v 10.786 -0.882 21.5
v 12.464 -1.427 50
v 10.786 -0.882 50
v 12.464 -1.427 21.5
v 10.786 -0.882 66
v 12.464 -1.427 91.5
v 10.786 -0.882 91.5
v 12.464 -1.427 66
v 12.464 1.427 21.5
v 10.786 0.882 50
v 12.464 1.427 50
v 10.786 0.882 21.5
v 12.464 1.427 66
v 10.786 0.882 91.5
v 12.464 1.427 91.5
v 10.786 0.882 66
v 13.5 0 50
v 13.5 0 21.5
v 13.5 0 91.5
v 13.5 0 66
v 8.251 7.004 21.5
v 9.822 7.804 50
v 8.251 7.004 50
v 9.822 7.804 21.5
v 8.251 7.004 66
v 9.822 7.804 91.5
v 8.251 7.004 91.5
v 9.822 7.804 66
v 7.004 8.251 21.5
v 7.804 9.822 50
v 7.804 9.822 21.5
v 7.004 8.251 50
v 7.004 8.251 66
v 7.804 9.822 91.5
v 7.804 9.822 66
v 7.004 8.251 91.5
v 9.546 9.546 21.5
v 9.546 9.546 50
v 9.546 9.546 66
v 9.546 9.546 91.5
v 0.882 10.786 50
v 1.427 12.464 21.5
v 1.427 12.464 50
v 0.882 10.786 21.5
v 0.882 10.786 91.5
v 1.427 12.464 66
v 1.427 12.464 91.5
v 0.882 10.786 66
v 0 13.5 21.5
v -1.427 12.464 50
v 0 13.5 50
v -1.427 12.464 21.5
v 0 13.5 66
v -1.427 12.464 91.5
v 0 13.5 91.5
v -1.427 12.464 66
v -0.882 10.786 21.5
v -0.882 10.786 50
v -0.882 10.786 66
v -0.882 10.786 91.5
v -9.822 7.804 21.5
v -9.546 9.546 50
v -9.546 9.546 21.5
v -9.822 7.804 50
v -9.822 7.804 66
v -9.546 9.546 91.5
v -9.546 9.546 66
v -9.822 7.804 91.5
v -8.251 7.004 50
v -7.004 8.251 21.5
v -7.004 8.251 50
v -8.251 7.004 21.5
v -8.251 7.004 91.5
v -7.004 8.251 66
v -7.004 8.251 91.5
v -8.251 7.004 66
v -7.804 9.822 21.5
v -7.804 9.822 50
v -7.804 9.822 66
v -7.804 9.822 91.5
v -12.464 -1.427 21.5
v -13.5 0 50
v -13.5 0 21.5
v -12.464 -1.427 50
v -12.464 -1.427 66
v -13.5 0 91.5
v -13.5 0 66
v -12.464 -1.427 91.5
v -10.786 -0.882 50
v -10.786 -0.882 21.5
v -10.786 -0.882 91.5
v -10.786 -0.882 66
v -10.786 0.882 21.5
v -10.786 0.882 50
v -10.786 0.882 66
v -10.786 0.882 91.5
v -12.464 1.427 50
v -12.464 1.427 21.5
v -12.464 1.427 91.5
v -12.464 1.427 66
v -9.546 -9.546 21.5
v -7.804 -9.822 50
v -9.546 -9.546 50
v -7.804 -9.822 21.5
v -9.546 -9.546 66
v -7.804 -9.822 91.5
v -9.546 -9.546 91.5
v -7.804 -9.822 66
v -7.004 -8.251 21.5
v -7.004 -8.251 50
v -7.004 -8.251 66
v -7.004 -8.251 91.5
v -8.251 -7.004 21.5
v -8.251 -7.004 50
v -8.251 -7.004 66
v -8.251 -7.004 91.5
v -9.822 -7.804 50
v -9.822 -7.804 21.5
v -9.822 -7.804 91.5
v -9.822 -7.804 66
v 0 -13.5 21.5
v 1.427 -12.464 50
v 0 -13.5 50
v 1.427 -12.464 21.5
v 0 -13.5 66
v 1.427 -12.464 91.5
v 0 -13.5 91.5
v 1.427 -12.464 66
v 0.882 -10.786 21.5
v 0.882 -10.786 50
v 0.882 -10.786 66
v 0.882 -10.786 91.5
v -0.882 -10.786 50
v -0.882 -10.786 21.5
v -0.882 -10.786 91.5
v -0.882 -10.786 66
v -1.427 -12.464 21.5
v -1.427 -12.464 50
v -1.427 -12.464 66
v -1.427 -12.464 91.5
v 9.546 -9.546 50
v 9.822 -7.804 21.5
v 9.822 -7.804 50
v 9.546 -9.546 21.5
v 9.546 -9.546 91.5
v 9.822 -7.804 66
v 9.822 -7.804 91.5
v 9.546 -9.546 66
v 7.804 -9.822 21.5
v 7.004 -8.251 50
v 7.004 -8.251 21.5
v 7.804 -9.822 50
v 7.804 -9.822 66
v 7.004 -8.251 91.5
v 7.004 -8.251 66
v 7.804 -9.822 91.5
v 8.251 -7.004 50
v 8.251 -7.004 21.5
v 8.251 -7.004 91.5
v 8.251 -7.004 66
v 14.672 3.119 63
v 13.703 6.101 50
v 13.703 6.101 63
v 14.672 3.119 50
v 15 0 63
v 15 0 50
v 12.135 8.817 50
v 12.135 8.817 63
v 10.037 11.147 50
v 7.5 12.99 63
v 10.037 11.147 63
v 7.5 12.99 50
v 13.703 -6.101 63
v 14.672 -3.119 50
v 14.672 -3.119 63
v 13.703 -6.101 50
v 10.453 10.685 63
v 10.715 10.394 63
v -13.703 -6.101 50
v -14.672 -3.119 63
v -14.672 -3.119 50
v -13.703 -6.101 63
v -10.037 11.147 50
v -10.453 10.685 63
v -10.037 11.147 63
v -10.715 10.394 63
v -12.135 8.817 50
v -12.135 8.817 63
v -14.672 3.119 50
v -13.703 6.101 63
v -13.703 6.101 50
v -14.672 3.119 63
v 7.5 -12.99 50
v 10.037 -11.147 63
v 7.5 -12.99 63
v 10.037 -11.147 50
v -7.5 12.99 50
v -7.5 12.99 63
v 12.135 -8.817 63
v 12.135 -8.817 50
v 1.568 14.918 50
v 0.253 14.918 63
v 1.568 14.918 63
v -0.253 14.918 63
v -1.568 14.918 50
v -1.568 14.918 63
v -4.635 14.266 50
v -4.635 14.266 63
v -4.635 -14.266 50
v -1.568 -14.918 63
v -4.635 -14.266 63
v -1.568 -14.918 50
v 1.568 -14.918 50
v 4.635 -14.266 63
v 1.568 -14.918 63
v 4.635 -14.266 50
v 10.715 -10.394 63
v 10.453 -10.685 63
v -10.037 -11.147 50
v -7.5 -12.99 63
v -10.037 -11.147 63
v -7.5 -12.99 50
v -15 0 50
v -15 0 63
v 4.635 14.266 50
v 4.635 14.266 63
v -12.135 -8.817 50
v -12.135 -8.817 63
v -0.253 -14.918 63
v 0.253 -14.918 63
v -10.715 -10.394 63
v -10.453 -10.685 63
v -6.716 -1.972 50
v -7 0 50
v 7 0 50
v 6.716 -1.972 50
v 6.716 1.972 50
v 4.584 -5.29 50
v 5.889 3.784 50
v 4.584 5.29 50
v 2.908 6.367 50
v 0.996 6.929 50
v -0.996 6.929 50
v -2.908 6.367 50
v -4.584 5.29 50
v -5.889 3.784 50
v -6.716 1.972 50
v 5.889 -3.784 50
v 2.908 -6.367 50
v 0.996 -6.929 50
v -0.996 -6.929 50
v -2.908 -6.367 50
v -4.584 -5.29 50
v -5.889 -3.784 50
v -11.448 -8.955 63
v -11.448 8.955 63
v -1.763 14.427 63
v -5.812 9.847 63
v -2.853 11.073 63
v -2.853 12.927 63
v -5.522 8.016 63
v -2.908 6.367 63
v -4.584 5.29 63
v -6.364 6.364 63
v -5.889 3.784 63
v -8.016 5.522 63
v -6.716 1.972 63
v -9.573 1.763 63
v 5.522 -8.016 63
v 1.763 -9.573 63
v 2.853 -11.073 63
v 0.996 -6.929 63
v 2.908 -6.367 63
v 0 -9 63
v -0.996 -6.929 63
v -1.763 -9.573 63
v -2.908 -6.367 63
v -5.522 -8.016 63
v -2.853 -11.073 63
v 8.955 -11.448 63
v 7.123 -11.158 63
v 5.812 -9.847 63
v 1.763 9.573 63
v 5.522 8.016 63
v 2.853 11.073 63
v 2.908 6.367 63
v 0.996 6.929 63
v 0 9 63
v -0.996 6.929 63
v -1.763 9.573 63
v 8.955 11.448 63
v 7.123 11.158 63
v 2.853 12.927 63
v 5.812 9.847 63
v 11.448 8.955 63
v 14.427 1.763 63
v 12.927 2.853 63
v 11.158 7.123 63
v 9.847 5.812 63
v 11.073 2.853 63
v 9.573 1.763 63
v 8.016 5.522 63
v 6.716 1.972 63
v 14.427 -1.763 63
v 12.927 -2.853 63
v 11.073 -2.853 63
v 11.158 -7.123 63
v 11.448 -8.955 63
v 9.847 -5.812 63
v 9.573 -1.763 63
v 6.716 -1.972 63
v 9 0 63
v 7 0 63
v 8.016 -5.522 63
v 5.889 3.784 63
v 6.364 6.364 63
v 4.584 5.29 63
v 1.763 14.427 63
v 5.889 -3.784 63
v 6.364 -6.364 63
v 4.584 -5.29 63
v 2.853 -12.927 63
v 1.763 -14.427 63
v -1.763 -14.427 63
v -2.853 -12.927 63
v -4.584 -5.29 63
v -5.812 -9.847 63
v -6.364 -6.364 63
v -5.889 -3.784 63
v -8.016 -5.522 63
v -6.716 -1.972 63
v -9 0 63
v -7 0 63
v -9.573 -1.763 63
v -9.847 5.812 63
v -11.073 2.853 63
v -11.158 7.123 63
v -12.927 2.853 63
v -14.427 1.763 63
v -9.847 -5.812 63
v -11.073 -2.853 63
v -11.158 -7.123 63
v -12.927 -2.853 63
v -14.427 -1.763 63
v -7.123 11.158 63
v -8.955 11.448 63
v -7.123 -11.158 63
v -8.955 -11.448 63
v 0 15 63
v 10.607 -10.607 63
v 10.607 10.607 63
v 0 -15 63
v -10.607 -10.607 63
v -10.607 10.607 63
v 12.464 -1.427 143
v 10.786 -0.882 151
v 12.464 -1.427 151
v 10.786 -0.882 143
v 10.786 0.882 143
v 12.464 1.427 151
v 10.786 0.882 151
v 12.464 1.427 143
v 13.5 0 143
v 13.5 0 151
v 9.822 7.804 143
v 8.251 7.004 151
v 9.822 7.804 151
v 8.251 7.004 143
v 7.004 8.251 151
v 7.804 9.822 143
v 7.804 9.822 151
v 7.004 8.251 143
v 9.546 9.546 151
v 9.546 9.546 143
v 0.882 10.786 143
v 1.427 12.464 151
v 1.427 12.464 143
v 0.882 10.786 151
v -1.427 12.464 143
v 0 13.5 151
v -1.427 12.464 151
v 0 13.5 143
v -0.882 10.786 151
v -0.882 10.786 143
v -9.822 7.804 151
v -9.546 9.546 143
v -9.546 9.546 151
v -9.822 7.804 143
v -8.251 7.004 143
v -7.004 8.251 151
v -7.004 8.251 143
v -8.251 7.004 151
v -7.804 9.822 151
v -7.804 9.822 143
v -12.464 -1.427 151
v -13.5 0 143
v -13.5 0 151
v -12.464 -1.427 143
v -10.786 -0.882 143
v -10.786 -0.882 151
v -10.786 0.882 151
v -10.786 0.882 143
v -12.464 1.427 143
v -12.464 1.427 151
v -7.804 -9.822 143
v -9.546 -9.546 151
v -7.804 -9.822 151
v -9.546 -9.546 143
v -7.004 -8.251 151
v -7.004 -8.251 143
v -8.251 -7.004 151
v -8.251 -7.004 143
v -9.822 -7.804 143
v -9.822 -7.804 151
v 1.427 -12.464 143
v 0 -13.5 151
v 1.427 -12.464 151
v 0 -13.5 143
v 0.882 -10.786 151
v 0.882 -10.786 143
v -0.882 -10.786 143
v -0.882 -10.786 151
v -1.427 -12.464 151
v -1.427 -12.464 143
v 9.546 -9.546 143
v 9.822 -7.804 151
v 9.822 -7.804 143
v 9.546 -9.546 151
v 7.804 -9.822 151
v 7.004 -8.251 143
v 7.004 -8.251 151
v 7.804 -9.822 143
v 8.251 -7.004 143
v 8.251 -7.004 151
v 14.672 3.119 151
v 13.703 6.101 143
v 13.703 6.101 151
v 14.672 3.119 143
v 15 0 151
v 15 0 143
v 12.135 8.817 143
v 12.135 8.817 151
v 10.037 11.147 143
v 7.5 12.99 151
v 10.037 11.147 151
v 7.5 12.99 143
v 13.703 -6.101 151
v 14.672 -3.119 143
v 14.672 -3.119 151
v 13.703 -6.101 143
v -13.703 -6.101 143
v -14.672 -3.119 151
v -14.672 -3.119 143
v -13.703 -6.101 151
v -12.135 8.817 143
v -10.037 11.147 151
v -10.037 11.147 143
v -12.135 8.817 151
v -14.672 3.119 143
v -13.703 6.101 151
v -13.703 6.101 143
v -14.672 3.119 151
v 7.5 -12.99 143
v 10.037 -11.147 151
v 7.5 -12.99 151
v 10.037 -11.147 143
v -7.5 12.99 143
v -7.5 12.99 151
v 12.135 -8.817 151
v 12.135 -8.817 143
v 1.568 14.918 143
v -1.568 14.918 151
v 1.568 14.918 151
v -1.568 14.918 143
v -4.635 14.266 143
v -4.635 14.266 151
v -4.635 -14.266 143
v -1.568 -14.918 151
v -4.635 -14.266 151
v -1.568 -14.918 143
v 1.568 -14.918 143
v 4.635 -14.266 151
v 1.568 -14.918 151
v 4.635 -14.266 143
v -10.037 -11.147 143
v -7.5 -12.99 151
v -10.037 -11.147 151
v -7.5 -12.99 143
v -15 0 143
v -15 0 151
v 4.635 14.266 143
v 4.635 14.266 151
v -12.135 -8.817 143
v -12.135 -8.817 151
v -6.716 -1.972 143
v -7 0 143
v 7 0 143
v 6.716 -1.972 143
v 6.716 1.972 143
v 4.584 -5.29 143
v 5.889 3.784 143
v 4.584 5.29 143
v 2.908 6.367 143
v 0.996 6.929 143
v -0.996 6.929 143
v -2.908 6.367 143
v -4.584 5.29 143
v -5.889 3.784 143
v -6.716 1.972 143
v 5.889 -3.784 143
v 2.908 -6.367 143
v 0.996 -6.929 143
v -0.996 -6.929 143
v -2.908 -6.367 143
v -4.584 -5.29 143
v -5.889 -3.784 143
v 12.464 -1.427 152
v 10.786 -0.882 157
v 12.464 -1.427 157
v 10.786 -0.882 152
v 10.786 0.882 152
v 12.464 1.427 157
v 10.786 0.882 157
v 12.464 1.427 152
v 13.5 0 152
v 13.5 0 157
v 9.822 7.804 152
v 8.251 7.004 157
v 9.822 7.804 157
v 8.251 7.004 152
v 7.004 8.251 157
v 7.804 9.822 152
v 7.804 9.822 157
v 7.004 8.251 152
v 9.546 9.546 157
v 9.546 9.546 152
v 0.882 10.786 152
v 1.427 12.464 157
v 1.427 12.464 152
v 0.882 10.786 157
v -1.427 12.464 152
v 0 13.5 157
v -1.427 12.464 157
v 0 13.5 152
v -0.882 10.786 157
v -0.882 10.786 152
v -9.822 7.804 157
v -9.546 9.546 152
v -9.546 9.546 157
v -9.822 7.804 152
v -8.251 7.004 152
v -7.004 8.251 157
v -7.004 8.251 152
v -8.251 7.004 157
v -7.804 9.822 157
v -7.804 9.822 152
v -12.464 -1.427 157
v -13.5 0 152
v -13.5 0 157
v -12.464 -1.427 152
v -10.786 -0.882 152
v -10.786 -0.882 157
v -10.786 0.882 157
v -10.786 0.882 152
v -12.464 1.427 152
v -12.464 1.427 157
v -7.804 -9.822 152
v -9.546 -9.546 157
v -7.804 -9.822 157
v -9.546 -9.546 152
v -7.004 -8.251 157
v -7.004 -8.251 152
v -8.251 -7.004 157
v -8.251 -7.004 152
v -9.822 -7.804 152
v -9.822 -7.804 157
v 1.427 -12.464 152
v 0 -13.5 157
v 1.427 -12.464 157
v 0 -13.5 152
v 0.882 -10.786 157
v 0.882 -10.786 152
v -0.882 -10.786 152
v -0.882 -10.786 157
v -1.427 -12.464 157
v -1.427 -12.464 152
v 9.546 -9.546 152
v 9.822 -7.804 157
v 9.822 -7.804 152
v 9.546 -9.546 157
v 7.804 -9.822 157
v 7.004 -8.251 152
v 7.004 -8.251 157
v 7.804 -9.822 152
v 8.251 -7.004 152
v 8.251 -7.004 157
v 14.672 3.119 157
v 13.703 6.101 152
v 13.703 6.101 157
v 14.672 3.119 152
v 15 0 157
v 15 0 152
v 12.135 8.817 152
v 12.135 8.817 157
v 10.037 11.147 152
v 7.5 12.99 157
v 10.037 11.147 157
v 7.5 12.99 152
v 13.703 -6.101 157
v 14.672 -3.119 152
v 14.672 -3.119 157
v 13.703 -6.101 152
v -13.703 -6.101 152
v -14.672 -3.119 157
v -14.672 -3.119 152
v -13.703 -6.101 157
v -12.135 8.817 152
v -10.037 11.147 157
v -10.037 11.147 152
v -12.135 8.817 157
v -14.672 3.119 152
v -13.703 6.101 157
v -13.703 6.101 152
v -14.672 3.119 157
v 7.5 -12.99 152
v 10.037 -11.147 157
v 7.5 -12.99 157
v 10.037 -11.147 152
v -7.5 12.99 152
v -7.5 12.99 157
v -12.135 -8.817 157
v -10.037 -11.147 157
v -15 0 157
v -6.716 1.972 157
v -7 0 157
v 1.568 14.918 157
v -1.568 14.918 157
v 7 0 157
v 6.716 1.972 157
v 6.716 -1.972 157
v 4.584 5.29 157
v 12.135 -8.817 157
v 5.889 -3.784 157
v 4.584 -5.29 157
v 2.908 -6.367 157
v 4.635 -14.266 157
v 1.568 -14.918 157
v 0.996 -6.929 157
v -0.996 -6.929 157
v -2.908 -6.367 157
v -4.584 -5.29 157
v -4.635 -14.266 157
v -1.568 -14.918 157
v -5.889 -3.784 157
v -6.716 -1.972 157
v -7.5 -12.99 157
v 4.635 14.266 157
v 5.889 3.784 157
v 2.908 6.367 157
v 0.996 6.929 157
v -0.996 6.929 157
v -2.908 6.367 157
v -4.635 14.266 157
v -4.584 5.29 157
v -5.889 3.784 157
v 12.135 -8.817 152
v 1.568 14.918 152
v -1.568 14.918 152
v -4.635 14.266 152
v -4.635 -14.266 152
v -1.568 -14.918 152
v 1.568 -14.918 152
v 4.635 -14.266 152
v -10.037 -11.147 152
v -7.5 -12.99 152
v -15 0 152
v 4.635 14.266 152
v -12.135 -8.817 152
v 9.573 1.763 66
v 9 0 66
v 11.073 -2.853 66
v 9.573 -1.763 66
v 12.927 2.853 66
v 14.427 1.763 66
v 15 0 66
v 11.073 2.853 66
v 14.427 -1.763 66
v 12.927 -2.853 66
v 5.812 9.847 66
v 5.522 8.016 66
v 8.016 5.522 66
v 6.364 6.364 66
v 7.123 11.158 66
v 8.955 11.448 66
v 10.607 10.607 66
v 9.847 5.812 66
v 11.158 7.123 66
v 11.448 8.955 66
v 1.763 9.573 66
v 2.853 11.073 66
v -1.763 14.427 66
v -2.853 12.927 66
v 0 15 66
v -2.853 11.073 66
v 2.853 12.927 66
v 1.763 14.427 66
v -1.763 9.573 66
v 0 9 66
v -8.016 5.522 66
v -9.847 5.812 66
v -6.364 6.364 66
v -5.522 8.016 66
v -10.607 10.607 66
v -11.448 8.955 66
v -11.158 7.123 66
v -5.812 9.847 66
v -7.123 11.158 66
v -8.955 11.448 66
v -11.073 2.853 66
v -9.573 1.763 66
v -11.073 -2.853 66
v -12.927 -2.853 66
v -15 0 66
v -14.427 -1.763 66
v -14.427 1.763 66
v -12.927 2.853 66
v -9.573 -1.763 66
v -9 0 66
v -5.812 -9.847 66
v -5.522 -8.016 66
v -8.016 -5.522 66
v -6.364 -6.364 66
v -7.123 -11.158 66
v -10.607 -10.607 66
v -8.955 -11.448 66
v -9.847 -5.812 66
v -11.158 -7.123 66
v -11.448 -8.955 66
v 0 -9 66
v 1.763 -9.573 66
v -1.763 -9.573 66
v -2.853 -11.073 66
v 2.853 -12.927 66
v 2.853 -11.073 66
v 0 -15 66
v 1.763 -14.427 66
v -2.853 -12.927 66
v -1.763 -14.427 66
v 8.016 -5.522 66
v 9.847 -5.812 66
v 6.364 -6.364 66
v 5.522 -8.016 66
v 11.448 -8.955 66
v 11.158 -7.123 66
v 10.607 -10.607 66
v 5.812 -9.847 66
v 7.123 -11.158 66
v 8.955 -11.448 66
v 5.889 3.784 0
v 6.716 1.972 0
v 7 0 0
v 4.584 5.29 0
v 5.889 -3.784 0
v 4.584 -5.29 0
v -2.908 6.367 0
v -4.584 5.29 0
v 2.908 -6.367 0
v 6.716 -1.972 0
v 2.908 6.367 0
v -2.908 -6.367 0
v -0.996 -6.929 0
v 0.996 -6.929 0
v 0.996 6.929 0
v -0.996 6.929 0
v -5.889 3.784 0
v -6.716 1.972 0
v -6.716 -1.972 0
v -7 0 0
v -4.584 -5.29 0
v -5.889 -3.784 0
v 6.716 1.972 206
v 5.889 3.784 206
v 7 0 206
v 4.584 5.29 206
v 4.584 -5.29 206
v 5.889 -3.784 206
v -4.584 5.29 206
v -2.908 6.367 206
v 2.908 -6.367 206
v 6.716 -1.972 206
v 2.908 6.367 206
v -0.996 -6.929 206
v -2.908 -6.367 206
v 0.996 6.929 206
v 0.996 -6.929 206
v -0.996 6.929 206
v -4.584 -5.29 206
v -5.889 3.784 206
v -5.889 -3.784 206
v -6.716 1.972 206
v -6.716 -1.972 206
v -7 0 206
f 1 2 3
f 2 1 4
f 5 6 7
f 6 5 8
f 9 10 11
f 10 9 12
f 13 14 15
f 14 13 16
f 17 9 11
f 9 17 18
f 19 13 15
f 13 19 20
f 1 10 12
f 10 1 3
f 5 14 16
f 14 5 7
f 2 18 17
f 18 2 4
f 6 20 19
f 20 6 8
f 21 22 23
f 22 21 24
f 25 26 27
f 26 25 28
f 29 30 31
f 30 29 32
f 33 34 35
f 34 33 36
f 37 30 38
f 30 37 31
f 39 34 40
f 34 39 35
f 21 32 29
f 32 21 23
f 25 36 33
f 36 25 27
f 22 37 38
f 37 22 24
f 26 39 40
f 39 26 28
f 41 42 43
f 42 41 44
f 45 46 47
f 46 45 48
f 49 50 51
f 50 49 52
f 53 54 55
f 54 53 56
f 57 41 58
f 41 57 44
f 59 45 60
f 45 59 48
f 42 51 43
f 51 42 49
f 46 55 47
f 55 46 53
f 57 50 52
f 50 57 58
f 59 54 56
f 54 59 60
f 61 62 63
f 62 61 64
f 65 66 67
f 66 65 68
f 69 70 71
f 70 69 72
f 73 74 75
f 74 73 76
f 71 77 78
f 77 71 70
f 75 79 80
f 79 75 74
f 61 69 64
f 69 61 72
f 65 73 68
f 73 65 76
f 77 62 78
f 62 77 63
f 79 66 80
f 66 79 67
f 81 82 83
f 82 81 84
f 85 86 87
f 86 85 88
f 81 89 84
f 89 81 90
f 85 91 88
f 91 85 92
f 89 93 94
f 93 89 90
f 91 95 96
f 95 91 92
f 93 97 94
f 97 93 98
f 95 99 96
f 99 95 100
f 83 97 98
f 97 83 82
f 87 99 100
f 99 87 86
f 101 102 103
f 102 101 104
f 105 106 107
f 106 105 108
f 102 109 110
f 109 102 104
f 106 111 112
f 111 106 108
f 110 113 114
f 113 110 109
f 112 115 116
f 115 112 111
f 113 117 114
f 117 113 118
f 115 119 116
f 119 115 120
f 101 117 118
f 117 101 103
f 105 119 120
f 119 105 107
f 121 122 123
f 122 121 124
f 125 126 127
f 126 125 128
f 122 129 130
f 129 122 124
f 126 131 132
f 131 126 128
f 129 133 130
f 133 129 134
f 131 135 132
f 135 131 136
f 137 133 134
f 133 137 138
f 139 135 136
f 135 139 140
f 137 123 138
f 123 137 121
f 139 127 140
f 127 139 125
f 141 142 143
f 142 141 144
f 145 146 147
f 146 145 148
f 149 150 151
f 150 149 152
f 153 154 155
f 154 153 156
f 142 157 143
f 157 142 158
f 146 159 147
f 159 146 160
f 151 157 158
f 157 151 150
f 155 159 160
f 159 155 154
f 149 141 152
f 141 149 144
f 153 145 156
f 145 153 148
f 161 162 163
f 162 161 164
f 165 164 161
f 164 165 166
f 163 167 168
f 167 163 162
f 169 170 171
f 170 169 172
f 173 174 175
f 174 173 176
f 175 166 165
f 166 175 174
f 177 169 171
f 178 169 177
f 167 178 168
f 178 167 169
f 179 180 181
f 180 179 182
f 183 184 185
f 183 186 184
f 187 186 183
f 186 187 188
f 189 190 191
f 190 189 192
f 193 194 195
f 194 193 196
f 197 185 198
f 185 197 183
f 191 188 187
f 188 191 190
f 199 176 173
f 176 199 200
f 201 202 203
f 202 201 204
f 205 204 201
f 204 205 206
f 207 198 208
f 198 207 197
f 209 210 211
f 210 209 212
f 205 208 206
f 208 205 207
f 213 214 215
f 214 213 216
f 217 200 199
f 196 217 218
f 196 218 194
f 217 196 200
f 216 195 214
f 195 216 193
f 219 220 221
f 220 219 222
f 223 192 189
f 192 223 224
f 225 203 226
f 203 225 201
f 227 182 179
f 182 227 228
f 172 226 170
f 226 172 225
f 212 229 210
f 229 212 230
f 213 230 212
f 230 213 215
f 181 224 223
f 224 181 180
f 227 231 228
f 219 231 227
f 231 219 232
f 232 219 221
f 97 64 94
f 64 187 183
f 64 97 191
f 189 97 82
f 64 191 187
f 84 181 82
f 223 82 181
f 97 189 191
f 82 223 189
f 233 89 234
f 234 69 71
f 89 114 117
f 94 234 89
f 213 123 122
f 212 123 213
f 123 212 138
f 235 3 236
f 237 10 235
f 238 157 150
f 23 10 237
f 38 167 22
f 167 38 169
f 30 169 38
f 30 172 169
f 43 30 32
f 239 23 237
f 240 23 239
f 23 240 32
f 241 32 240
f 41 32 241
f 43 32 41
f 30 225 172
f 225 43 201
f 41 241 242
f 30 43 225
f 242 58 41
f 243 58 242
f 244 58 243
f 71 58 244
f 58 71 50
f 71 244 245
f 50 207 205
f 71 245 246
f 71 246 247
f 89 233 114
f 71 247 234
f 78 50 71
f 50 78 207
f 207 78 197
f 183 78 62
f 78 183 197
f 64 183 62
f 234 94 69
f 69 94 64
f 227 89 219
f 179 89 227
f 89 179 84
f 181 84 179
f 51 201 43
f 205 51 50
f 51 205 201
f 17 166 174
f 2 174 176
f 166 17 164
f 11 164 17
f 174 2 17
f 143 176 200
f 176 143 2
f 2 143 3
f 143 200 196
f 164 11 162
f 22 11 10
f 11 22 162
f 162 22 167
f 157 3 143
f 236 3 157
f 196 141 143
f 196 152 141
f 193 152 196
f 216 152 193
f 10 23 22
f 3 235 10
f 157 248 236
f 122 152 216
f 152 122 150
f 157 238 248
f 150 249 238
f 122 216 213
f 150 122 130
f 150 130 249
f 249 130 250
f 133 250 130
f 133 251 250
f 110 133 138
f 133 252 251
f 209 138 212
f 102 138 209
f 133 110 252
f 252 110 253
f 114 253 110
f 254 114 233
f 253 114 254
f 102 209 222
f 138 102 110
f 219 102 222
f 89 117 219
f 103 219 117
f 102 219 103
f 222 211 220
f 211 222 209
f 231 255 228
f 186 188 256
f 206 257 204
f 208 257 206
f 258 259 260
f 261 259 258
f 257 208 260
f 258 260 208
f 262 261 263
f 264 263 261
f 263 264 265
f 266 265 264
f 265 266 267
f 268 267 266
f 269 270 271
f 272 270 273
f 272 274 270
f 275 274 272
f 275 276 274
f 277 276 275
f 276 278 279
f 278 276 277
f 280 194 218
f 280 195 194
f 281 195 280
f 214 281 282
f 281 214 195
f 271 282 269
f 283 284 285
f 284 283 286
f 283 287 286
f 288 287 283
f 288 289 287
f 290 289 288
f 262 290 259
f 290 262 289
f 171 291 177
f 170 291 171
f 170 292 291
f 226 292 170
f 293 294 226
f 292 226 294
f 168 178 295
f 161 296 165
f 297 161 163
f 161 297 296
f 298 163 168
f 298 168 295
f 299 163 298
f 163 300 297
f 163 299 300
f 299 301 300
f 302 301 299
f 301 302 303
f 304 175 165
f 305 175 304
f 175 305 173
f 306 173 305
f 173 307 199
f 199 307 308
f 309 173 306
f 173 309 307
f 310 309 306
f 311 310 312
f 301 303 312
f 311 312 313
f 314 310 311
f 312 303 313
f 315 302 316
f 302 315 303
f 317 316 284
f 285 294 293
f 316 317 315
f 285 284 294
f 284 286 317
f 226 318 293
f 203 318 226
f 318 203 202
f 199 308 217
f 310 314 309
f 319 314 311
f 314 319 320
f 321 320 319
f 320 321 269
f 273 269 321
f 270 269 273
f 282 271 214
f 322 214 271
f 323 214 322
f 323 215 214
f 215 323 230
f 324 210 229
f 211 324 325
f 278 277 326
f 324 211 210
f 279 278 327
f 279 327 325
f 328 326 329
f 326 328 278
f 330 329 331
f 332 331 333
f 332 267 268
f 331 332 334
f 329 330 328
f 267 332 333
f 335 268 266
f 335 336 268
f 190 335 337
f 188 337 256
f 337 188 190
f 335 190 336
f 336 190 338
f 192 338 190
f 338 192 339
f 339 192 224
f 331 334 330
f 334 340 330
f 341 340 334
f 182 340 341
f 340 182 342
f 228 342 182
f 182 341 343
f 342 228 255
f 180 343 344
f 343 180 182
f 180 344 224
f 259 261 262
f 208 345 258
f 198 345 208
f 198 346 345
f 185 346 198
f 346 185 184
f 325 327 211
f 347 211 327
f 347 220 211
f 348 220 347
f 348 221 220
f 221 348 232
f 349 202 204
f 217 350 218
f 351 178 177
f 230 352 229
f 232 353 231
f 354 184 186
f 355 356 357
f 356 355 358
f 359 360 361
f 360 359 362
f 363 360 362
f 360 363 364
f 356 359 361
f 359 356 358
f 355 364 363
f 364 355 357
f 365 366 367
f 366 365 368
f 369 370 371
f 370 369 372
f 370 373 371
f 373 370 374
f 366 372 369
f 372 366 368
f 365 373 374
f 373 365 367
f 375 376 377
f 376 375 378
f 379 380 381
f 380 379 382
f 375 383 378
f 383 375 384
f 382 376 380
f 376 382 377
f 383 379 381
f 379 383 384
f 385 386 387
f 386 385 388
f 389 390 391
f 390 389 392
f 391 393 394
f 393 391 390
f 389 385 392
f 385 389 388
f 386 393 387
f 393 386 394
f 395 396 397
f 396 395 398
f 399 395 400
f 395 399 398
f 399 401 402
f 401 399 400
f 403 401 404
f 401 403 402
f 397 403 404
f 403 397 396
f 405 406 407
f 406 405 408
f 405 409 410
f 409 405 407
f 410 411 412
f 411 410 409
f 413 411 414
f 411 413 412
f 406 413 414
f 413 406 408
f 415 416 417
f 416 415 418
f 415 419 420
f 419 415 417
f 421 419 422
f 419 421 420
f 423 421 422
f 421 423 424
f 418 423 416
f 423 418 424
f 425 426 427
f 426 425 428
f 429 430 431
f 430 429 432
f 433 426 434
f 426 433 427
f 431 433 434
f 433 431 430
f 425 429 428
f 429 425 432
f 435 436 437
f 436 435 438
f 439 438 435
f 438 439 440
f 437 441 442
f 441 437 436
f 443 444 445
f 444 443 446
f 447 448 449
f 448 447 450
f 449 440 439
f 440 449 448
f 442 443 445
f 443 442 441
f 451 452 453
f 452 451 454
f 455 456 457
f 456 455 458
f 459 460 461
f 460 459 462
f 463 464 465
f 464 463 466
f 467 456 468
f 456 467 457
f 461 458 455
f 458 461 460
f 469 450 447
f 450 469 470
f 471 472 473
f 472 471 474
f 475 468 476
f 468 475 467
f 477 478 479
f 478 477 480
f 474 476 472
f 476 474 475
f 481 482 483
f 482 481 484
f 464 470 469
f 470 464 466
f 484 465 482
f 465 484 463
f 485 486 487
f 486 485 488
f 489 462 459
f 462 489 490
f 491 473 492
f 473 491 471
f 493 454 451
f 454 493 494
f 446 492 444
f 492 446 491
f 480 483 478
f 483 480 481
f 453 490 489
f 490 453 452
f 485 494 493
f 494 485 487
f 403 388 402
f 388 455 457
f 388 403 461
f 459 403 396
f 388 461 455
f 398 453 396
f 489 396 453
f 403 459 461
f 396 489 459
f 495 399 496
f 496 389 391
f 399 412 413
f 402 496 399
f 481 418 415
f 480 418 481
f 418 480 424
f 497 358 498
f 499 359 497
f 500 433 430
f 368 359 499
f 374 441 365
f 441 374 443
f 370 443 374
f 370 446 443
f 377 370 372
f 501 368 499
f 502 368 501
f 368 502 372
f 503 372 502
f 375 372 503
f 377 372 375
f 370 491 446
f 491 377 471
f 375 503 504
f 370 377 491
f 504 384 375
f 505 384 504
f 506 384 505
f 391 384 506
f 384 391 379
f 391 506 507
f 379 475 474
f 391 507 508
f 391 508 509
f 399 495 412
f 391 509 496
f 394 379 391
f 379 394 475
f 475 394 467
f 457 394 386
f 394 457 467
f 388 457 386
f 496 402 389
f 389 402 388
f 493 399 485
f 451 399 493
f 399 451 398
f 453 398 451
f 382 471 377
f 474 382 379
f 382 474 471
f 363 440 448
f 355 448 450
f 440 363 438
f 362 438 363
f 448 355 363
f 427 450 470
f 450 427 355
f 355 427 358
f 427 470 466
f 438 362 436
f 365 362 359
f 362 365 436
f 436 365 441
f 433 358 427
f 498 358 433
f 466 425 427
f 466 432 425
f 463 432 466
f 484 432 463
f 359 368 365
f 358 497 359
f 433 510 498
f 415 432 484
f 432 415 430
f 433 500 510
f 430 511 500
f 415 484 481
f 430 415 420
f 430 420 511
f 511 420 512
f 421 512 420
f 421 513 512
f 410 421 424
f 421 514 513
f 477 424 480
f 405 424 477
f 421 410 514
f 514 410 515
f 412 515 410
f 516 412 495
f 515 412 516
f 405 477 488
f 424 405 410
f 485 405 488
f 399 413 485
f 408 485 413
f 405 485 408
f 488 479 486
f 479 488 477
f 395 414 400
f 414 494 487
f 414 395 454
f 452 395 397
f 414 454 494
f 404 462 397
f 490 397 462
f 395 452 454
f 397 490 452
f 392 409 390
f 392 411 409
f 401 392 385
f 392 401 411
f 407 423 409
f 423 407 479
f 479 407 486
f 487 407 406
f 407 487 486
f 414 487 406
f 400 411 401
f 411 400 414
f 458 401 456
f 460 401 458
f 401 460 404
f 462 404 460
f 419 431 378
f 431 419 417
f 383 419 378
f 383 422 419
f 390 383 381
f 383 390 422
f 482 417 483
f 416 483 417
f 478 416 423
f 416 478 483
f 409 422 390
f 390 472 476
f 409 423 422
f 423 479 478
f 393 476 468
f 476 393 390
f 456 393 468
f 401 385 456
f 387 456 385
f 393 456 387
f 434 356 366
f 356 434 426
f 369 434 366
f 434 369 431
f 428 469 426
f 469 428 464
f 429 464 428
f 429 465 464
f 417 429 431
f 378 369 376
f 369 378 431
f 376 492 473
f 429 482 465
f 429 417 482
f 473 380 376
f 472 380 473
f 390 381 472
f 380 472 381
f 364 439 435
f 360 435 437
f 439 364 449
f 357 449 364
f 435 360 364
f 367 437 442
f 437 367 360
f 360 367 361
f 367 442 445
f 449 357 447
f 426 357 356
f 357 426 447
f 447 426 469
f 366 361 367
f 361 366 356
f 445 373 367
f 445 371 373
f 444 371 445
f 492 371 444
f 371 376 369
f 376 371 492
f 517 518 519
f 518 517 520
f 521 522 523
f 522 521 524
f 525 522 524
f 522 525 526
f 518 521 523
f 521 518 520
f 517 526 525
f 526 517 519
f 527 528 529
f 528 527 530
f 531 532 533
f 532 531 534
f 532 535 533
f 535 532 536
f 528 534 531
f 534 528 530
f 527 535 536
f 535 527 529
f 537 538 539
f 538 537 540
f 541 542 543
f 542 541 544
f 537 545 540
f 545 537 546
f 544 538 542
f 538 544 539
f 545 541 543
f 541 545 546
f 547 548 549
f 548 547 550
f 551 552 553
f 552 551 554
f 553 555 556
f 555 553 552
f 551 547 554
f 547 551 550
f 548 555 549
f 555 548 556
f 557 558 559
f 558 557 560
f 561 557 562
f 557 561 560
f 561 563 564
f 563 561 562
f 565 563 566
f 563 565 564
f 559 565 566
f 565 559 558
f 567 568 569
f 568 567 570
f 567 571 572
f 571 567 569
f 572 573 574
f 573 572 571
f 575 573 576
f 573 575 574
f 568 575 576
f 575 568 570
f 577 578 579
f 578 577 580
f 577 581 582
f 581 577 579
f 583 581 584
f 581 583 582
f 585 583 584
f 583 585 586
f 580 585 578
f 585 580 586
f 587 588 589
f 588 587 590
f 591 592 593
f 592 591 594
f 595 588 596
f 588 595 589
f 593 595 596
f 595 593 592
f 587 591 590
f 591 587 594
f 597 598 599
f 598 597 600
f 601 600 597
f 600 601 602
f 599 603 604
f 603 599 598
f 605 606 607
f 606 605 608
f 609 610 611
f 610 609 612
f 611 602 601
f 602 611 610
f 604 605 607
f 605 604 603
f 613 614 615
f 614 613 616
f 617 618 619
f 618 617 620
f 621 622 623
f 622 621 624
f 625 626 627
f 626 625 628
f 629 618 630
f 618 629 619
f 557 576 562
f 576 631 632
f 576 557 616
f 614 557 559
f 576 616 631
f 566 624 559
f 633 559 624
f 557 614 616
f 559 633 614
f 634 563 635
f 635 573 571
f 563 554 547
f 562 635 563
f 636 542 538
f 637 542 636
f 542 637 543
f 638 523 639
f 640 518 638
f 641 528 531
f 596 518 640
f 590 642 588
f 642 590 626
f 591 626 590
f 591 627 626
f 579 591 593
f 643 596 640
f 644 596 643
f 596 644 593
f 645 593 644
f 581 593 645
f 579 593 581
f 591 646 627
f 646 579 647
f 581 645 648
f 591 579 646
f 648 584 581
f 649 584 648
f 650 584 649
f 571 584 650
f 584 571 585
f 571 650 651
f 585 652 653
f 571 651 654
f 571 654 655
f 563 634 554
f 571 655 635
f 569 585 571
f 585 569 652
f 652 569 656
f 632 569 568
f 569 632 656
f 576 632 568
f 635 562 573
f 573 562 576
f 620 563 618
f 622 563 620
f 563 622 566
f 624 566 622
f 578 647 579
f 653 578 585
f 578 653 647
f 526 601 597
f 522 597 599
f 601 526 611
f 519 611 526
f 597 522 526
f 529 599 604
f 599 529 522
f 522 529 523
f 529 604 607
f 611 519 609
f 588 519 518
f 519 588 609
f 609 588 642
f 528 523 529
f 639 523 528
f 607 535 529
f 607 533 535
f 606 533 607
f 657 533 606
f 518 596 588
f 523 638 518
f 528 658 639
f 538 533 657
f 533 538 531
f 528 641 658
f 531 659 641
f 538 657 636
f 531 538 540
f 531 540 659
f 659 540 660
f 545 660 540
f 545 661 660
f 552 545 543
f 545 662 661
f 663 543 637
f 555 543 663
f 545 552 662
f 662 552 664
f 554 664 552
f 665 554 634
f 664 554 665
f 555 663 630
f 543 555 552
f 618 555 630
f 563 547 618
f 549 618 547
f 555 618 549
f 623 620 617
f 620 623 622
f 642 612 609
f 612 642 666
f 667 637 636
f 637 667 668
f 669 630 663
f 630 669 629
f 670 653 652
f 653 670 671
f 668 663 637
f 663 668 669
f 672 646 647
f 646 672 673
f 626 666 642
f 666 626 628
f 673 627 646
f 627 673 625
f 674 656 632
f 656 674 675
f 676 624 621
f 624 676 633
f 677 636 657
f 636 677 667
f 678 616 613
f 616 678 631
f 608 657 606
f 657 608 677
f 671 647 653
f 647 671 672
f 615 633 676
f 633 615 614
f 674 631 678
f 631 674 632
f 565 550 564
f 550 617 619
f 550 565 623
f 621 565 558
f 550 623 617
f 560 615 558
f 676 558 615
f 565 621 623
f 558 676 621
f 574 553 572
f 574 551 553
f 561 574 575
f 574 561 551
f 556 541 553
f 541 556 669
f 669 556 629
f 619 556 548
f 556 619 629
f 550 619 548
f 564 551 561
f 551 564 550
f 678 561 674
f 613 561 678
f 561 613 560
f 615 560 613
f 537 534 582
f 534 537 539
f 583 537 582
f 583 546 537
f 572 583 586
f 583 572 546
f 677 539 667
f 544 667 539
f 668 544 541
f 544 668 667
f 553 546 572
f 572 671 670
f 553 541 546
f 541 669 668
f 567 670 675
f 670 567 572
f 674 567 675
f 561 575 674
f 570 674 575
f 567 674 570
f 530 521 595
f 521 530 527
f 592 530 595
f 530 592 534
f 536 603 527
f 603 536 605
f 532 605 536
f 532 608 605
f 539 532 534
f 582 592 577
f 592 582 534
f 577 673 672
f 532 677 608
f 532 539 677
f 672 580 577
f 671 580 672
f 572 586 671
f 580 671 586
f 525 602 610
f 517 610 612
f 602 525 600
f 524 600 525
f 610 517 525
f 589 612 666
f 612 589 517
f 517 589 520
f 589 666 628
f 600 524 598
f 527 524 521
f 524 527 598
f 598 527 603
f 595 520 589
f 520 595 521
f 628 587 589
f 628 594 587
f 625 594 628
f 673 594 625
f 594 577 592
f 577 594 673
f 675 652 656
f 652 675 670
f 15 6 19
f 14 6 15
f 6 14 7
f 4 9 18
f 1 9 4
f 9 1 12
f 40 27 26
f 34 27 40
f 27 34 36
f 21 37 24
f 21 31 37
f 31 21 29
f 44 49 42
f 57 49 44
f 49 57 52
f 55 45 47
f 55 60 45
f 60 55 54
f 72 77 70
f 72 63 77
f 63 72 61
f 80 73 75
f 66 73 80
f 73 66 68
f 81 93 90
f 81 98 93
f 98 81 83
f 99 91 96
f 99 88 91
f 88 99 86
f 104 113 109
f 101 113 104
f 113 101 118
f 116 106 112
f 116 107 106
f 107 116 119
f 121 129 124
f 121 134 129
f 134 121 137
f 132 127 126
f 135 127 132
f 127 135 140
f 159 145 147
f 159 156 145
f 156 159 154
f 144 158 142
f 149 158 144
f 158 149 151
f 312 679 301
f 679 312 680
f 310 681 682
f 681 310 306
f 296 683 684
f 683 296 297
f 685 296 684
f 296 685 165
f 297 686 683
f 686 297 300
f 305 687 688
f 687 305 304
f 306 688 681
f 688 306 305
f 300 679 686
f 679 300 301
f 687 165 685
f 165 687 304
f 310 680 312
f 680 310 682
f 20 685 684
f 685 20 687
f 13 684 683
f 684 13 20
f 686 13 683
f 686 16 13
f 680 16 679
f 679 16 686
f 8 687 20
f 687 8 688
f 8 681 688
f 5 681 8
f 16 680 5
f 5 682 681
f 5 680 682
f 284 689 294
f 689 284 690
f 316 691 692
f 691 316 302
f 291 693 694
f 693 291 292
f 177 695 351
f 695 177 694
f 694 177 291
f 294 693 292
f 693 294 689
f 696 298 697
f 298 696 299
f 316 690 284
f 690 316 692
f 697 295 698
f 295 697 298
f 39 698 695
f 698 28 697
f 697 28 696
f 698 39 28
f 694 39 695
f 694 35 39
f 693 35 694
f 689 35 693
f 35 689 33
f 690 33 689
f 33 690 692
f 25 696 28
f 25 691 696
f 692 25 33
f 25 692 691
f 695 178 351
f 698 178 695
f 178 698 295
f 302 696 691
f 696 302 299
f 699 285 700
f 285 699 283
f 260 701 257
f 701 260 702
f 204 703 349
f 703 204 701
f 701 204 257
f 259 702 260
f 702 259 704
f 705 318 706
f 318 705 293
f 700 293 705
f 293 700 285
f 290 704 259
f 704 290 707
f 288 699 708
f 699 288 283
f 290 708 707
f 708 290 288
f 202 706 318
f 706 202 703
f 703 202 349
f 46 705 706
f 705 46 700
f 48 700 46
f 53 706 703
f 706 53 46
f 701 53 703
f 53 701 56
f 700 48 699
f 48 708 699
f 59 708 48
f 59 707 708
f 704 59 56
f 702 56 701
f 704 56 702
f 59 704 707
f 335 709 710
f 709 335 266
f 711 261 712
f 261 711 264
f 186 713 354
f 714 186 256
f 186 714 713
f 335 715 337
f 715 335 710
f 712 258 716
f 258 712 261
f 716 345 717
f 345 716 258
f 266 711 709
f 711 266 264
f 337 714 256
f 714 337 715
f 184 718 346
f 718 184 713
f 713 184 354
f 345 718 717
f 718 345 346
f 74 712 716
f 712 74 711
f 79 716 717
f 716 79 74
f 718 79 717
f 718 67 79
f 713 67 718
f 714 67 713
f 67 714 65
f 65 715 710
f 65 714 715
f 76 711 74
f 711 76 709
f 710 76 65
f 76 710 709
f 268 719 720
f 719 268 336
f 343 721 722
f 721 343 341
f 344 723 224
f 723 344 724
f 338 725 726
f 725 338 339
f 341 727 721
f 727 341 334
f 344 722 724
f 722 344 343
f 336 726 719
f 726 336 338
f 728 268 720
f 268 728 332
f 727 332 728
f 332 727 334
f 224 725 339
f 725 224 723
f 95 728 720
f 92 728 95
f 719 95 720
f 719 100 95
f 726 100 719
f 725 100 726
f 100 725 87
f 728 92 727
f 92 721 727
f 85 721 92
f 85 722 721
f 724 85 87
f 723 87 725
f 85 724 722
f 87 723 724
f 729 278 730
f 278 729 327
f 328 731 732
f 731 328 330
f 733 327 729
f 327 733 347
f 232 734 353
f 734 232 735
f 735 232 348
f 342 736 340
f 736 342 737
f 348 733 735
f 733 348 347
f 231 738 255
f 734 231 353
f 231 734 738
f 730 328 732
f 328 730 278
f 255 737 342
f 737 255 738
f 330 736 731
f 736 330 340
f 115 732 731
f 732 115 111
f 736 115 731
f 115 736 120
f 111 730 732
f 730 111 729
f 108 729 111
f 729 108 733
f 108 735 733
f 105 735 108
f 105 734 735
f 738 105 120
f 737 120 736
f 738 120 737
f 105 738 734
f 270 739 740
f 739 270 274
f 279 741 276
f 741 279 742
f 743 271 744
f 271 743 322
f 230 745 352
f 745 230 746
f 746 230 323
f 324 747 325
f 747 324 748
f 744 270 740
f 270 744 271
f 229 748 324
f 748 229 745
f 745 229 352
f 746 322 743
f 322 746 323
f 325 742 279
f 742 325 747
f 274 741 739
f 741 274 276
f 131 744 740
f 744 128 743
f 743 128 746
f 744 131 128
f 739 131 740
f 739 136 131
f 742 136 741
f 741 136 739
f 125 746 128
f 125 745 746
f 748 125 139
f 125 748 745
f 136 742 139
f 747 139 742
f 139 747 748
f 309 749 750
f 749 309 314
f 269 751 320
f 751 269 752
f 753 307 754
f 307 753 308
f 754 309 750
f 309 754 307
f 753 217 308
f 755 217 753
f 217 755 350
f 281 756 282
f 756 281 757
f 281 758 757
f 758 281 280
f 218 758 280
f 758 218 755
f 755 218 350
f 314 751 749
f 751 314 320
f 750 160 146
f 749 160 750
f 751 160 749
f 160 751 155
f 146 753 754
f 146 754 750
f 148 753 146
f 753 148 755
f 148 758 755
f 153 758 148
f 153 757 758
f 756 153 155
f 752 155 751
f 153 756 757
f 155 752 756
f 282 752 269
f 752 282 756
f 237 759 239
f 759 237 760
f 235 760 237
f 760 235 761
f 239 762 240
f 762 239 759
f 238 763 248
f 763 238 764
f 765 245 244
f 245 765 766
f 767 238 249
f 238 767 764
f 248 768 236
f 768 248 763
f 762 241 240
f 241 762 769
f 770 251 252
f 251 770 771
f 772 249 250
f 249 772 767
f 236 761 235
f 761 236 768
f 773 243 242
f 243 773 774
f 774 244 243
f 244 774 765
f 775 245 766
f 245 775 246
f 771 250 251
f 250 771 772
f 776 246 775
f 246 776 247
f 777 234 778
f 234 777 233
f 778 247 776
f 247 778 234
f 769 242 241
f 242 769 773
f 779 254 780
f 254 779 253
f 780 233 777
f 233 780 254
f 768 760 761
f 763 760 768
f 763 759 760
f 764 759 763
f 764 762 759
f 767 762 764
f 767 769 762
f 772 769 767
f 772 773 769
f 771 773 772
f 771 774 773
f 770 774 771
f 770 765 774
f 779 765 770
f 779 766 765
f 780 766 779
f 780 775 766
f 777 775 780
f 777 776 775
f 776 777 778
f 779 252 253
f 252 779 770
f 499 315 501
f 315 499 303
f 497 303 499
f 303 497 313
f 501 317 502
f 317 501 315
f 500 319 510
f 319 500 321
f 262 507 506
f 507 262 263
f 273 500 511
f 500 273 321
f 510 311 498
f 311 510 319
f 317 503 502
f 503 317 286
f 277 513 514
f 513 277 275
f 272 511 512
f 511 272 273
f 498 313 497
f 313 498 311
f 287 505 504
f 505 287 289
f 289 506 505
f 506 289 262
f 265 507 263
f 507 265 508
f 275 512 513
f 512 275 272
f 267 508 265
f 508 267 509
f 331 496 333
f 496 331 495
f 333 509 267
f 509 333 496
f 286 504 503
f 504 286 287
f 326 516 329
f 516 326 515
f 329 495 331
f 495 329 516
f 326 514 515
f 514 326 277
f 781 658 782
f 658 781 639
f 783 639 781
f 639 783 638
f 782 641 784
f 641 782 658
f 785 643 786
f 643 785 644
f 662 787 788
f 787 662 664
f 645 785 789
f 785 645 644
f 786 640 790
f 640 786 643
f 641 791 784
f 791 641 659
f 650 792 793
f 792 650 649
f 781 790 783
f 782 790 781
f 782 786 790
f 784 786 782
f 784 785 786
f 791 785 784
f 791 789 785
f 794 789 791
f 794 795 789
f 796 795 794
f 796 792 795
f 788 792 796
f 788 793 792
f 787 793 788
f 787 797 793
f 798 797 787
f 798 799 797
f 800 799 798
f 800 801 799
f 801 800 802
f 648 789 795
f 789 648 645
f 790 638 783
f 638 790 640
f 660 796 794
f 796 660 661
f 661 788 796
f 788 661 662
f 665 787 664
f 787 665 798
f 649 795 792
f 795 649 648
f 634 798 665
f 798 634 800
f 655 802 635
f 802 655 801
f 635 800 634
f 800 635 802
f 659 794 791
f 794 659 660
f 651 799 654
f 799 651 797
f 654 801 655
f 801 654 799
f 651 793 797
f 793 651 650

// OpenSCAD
// Parameters
shaft_diameter = 14; // Updated diameter of shafts (input/output) to match original
shaft_length = 50; // Updated length of input/output shafts to match original
central_shaft_length = 80; // Updated length of central shaft to match original
flange_diameter = 30; // Diameter of flange plates
flange_thickness = 5; // Thickness of flange plates
spacer_ring_diameter = 30; // Diameter of spacer rings
spacer_ring_thickness = 3; // Updated thickness of spacer rings to match original
bolt_diameter = 3; // Diameter of bolts
bolt_length = 70; // Updated length of bolts to match original
nut_diameter = 6; // Updated diameter of nuts to match original
nut_thickness = 3; // Updated thickness of nuts to match original
bolt_hole_radius = 12; // Radius of bolt hole circle

// Helper function to create a bolt hole pattern
module bolt_holes(num_holes, radius) {
    for (i = [0:num_holes-1]) {
        rotate([0, 0, i * 360 / num_holes])
        translate([radius, 0, 0])
        cylinder(r=bolt_diameter/2, h=flange_thickness + spacer_ring_thickness, center=true);
    }
}

// Input Shaft
translate([0, 0, shaft_length/2])
cylinder(r=shaft_diameter/2, h=shaft_length, center=true);

// Flange Plate 1
translate([0, 0, shaft_length + flange_thickness/2])
difference() {
    cylinder(r=flange_diameter/2, h=flange_thickness, center=true);
    bolt_holes(8, bolt_hole_radius); // Updated number of bolt holes to match original
}

// Spacer Ring 1
translate([0, 0, shaft_length + flange_thickness + spacer_ring_thickness/2])
difference() {
    cylinder(r=spacer_ring_diameter/2, h=spacer_ring_thickness, center=true);
    bolt_holes(8, bolt_hole_radius); // Updated number of bolt holes to match original
}

// Flange Plate 2
translate([0, 0, shaft_length + flange_thickness + spacer_ring_thickness + flange_thickness/2])
difference() {
    cylinder(r=flange_diameter/2, h=flange_thickness, center=true);
    bolt_holes(8, bolt_hole_radius); // Updated number of bolt holes to match original
}

// Central Shaft
translate([0, 0, shaft_length + flange_thickness*2 + spacer_ring_thickness + central_shaft_length/2])
cylinder(r=shaft_diameter/2, h=central_shaft_length, center=true);

// Flange Plate 3
translate([0, 0, shaft_length + flange_thickness*2 + spacer_ring_thickness + central_shaft_length + flange_thickness/2])
difference() {
    cylinder(r=flange_diameter/2, h=flange_thickness, center=true);
    bolt_holes(8, bolt_hole_radius); // Updated number of bolt holes to match original
}

// Spacer Ring 2
translate([0, 0, shaft_length + flange_thickness*2 + spacer_ring_thickness + central_shaft_length + flange_thickness + spacer_ring_thickness/2])
difference() {
    cylinder(r=spacer_ring_diameter/2, h=spacer_ring_thickness, center=true);
    bolt_holes(8, bolt_hole_radius); // Updated number of bolt holes to match original
}

// Flange Plate 4
translate([0, 0, shaft_length + flange_thickness*2 + spacer_ring_thickness + central_shaft_length + flange_thickness*2 + spacer_ring_thickness/2])
difference() {
    cylinder(r=flange_diameter/2, h=flange_thickness, center=true);
    bolt_holes(8, bolt_hole_radius); // Updated number of bolt holes to match original
}

// Output Shaft
translate([0, 0, shaft_length + flange_thickness*2 + spacer_ring_thickness + central_shaft_length + flange_thickness*2 + spacer_ring_thickness + shaft_length/2])
cylinder(r=shaft_diameter/2, h=shaft_length, center=true);

// Bolts
for (i = [0:7]) { // Updated number of bolts to match original
    rotate([0, 0, i * 360 / 8])
    translate([bolt_hole_radius, 0, shaft_length + flange_thickness + spacer_ring_thickness/2])
    cylinder(r=bolt_diameter/2, h=bolt_length, center=true);
}

// Nuts
for (i = [0:7]) { // Updated number of nuts to match original
    rotate([0, 0, i * 360 / 8])
    translate([bolt_hole_radius, 0, shaft_length + flange_thickness + spacer_ring_thickness + flange_thickness + nut_thickness/2])
    cylinder(r=nut_diameter/2, h=nut_thickness, center=true);
}
